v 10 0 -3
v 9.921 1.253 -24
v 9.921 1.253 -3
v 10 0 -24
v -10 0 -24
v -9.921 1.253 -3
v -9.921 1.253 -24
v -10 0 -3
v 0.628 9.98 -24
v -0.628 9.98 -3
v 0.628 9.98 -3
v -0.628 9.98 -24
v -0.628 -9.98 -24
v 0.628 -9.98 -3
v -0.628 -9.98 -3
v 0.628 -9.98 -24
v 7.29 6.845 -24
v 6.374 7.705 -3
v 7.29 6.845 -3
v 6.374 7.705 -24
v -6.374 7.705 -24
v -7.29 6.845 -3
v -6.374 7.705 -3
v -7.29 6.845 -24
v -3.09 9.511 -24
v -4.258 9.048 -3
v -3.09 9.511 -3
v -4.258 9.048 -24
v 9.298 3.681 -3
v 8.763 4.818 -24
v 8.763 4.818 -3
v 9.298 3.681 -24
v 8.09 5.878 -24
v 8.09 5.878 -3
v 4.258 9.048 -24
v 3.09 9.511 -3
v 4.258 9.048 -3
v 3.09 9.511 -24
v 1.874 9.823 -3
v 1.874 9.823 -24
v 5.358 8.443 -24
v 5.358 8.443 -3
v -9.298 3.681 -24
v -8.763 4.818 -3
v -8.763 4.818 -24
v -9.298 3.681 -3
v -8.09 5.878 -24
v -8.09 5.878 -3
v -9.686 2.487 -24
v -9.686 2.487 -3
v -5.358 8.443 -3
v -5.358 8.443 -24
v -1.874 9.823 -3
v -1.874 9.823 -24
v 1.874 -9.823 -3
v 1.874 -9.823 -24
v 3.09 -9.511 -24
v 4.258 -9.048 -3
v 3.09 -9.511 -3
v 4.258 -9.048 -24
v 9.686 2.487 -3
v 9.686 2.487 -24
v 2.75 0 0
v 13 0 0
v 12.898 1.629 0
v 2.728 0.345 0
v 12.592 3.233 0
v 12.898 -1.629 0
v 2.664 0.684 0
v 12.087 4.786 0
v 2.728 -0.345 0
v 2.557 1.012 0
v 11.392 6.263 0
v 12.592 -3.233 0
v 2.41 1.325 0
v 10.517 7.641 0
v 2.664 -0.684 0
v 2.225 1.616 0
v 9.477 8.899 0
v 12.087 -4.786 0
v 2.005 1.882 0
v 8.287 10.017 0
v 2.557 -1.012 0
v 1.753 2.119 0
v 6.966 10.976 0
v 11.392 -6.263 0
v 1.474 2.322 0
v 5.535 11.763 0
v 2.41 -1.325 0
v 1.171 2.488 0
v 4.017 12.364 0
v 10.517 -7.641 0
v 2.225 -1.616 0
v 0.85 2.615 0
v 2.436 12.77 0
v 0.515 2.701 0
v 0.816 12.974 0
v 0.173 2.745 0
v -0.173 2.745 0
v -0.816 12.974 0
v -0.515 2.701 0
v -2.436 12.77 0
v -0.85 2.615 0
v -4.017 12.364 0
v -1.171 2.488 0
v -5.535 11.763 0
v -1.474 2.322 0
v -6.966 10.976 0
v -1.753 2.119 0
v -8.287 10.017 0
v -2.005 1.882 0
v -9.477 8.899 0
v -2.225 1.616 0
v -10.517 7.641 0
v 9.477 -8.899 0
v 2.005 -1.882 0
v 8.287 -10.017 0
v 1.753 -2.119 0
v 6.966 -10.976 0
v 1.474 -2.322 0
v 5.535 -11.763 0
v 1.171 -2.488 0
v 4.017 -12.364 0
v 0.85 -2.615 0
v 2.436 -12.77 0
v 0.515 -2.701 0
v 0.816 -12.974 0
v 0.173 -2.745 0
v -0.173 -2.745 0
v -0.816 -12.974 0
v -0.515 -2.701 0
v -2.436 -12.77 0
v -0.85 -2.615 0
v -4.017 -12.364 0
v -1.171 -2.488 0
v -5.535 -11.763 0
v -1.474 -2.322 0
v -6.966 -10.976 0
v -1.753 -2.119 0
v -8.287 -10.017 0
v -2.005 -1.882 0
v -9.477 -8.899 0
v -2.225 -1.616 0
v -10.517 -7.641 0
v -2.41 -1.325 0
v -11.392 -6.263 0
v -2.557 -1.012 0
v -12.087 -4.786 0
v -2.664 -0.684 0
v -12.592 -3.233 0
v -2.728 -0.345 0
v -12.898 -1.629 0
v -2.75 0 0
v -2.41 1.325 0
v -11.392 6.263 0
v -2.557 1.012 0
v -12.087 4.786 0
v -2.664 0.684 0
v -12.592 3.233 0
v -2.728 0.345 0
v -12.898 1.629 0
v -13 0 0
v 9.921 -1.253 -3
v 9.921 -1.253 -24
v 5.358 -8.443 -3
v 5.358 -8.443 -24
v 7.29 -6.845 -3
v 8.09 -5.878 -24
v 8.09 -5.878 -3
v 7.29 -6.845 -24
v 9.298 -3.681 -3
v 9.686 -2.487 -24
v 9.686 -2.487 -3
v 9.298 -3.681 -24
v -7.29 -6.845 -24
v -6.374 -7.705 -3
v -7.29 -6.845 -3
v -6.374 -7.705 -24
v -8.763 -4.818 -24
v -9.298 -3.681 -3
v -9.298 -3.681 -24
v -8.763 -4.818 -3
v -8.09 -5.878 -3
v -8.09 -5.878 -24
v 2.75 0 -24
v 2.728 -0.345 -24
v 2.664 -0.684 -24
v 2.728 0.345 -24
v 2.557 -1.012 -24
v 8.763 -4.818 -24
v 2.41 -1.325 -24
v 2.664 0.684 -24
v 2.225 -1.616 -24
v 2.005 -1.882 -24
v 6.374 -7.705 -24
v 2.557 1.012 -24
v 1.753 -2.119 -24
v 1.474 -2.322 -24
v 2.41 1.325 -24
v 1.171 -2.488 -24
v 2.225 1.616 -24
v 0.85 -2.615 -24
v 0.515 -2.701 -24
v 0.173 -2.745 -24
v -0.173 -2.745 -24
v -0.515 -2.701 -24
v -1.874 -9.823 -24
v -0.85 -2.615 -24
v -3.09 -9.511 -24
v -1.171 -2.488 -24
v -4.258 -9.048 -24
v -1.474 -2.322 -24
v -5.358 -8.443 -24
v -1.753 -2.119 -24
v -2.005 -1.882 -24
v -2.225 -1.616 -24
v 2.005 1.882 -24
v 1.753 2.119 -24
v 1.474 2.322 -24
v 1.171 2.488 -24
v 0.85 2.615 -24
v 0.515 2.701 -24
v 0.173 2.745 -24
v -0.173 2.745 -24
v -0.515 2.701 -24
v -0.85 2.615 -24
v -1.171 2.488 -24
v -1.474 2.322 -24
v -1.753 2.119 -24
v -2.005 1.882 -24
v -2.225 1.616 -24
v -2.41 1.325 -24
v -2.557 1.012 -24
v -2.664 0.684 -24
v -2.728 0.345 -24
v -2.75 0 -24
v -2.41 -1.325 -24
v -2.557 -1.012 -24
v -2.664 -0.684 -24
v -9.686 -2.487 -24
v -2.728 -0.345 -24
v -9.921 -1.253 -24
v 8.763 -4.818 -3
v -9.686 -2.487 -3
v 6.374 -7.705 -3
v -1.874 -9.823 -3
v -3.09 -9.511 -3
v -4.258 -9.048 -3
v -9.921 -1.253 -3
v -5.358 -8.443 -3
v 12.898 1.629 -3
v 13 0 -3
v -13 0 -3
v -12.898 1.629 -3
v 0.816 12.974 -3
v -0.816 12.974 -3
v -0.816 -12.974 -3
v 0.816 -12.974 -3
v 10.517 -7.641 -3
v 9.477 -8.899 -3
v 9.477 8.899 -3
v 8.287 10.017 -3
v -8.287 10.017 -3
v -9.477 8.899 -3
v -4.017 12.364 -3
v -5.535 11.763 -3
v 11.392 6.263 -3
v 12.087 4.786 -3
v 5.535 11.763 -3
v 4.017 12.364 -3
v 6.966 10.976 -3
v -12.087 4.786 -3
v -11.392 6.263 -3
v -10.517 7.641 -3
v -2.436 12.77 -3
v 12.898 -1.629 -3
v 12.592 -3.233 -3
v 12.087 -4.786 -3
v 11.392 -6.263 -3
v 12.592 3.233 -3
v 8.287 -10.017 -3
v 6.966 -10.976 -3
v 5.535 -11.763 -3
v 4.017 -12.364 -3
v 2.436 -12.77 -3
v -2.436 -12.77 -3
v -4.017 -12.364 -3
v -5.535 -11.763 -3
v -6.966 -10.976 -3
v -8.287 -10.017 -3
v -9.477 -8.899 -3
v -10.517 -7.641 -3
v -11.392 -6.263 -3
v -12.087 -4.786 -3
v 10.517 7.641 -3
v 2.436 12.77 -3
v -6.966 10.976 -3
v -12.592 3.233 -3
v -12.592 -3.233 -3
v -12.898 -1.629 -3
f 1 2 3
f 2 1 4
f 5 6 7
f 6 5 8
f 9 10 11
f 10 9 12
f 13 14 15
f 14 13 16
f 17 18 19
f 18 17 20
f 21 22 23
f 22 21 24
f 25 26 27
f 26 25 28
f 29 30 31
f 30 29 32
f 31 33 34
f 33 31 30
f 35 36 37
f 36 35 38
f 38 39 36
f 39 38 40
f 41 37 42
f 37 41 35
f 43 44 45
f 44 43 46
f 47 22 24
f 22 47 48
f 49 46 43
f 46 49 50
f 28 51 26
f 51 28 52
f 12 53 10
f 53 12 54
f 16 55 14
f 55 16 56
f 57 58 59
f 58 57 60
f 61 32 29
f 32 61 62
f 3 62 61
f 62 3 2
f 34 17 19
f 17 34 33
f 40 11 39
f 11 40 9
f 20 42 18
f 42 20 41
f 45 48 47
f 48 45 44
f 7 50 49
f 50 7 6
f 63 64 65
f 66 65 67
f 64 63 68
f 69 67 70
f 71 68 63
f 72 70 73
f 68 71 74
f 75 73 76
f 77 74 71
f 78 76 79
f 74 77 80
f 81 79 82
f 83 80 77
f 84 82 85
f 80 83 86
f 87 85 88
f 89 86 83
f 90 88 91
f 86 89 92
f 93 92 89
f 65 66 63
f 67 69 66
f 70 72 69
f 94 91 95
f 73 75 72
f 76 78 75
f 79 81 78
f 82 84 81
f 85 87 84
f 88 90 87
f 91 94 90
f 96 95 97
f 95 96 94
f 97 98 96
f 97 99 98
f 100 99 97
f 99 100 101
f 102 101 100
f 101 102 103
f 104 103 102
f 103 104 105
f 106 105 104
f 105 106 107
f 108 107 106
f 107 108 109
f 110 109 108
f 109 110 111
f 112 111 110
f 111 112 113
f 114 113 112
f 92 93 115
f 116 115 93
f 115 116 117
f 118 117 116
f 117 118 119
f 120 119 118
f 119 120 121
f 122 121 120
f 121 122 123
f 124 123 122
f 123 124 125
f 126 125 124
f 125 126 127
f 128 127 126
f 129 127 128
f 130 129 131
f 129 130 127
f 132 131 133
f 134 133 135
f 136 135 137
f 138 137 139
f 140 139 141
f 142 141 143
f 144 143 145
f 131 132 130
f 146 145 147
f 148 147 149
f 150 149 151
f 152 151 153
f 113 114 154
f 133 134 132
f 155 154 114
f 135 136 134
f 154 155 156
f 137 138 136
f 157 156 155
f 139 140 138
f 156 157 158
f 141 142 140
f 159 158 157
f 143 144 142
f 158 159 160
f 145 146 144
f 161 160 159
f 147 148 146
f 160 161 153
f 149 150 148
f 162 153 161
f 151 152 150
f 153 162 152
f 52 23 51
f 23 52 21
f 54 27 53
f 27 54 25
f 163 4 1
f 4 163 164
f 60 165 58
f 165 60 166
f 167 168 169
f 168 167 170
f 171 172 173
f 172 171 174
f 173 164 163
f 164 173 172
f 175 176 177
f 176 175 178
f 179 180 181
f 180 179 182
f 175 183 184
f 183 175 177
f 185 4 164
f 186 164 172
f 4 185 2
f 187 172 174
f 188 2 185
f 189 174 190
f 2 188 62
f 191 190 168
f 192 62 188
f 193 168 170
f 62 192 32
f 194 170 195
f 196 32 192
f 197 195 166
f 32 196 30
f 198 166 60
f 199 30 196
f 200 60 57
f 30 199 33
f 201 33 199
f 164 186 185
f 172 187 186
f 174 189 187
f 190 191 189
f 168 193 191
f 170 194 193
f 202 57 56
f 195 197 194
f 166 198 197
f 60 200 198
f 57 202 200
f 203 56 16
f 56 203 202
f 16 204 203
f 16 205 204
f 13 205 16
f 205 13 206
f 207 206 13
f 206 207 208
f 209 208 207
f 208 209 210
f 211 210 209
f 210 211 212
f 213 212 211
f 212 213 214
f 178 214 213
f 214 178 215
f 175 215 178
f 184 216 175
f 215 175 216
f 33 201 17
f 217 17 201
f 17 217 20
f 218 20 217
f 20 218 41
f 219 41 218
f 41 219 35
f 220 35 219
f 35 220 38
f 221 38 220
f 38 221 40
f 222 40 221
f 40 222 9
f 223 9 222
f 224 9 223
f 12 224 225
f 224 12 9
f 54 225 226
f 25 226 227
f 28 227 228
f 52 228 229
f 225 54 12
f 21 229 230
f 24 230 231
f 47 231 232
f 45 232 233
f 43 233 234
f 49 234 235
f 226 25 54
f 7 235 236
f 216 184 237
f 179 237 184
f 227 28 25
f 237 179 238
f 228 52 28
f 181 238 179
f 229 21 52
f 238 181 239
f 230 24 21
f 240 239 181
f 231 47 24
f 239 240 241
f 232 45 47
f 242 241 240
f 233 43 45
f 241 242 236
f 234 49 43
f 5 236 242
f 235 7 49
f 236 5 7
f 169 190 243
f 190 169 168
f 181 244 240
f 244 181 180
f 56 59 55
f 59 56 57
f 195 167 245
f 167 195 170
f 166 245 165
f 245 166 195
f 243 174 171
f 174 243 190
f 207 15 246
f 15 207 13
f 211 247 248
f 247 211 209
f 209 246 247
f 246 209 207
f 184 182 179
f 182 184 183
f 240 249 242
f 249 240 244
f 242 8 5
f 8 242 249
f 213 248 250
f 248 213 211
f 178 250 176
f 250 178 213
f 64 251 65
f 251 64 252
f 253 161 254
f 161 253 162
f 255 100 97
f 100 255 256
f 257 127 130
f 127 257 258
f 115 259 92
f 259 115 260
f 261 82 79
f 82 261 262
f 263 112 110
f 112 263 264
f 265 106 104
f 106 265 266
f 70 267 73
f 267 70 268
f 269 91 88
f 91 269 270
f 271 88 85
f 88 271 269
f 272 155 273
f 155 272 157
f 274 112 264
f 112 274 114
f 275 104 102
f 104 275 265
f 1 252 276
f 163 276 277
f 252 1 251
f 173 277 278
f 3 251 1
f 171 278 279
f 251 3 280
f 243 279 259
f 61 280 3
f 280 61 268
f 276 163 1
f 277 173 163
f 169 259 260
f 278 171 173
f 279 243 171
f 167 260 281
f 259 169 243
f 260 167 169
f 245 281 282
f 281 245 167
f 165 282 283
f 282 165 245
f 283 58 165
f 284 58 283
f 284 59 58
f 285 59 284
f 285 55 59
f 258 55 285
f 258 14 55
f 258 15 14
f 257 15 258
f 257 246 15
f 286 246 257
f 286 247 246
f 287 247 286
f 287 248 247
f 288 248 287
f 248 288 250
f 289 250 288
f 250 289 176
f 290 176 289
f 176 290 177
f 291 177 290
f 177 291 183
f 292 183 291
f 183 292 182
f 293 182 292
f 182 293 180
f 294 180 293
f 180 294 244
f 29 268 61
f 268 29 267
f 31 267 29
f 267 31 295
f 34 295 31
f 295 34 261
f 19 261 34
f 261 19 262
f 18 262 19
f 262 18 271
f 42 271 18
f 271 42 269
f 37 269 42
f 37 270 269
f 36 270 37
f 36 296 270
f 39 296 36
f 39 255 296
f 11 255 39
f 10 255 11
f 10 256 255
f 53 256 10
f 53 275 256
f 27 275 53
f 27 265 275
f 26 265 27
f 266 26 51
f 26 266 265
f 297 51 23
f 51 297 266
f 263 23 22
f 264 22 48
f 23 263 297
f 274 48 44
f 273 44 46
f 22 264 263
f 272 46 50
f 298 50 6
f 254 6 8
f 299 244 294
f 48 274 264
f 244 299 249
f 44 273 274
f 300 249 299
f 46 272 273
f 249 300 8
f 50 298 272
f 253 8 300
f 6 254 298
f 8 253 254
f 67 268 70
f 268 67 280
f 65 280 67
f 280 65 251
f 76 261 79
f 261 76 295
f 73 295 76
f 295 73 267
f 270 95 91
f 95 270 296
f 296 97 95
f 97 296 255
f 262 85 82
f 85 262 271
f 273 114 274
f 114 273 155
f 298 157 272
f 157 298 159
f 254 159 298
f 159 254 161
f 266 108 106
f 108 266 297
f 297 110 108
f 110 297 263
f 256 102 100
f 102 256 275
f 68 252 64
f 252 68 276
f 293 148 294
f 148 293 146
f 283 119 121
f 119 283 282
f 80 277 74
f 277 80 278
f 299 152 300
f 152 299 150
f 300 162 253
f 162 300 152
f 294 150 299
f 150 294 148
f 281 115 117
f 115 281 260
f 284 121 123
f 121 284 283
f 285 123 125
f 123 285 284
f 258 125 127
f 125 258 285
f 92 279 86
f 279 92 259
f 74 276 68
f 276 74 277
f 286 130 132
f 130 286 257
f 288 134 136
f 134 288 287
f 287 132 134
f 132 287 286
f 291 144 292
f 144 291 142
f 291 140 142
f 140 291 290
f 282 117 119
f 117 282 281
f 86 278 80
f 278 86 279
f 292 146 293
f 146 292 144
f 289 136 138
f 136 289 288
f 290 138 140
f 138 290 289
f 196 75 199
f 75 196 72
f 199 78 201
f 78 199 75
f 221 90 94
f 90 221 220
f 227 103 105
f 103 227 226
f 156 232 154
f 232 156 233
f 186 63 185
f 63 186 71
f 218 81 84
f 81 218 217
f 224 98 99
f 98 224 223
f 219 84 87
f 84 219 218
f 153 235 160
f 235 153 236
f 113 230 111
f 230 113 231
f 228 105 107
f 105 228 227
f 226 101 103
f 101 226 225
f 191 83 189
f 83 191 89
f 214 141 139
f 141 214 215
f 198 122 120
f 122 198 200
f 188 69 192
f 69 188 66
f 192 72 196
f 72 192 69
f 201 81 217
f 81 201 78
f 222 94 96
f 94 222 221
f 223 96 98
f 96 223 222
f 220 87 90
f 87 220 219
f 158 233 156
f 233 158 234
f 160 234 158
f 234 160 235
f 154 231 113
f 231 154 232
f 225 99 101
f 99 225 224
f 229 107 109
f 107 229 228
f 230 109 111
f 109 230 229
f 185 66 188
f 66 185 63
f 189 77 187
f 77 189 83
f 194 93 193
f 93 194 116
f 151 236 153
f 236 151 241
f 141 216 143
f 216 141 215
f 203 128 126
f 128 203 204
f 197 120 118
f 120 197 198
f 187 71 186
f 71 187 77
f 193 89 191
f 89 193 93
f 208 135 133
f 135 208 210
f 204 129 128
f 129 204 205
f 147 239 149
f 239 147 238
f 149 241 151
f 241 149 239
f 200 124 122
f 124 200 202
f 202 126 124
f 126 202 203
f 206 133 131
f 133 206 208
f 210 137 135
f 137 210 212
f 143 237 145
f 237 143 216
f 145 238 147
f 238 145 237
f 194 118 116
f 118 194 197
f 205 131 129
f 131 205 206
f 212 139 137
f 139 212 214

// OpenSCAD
$fn = 50;


difference() {
	union() {
		translate(v = [0, 0, -24.0000000000]) {
			cylinder(h = 24, r = 10.0000000000);
		}
		translate(v = [0, 0, -3.0000000000]) {
			cylinder(h = 3, r = 13.0000000000);
		}
	}
	union() {
		#translate(v = [0, 0, -24]) {
			cylinder(h = 24, r = 2.7500000000);
		}
	}
}
